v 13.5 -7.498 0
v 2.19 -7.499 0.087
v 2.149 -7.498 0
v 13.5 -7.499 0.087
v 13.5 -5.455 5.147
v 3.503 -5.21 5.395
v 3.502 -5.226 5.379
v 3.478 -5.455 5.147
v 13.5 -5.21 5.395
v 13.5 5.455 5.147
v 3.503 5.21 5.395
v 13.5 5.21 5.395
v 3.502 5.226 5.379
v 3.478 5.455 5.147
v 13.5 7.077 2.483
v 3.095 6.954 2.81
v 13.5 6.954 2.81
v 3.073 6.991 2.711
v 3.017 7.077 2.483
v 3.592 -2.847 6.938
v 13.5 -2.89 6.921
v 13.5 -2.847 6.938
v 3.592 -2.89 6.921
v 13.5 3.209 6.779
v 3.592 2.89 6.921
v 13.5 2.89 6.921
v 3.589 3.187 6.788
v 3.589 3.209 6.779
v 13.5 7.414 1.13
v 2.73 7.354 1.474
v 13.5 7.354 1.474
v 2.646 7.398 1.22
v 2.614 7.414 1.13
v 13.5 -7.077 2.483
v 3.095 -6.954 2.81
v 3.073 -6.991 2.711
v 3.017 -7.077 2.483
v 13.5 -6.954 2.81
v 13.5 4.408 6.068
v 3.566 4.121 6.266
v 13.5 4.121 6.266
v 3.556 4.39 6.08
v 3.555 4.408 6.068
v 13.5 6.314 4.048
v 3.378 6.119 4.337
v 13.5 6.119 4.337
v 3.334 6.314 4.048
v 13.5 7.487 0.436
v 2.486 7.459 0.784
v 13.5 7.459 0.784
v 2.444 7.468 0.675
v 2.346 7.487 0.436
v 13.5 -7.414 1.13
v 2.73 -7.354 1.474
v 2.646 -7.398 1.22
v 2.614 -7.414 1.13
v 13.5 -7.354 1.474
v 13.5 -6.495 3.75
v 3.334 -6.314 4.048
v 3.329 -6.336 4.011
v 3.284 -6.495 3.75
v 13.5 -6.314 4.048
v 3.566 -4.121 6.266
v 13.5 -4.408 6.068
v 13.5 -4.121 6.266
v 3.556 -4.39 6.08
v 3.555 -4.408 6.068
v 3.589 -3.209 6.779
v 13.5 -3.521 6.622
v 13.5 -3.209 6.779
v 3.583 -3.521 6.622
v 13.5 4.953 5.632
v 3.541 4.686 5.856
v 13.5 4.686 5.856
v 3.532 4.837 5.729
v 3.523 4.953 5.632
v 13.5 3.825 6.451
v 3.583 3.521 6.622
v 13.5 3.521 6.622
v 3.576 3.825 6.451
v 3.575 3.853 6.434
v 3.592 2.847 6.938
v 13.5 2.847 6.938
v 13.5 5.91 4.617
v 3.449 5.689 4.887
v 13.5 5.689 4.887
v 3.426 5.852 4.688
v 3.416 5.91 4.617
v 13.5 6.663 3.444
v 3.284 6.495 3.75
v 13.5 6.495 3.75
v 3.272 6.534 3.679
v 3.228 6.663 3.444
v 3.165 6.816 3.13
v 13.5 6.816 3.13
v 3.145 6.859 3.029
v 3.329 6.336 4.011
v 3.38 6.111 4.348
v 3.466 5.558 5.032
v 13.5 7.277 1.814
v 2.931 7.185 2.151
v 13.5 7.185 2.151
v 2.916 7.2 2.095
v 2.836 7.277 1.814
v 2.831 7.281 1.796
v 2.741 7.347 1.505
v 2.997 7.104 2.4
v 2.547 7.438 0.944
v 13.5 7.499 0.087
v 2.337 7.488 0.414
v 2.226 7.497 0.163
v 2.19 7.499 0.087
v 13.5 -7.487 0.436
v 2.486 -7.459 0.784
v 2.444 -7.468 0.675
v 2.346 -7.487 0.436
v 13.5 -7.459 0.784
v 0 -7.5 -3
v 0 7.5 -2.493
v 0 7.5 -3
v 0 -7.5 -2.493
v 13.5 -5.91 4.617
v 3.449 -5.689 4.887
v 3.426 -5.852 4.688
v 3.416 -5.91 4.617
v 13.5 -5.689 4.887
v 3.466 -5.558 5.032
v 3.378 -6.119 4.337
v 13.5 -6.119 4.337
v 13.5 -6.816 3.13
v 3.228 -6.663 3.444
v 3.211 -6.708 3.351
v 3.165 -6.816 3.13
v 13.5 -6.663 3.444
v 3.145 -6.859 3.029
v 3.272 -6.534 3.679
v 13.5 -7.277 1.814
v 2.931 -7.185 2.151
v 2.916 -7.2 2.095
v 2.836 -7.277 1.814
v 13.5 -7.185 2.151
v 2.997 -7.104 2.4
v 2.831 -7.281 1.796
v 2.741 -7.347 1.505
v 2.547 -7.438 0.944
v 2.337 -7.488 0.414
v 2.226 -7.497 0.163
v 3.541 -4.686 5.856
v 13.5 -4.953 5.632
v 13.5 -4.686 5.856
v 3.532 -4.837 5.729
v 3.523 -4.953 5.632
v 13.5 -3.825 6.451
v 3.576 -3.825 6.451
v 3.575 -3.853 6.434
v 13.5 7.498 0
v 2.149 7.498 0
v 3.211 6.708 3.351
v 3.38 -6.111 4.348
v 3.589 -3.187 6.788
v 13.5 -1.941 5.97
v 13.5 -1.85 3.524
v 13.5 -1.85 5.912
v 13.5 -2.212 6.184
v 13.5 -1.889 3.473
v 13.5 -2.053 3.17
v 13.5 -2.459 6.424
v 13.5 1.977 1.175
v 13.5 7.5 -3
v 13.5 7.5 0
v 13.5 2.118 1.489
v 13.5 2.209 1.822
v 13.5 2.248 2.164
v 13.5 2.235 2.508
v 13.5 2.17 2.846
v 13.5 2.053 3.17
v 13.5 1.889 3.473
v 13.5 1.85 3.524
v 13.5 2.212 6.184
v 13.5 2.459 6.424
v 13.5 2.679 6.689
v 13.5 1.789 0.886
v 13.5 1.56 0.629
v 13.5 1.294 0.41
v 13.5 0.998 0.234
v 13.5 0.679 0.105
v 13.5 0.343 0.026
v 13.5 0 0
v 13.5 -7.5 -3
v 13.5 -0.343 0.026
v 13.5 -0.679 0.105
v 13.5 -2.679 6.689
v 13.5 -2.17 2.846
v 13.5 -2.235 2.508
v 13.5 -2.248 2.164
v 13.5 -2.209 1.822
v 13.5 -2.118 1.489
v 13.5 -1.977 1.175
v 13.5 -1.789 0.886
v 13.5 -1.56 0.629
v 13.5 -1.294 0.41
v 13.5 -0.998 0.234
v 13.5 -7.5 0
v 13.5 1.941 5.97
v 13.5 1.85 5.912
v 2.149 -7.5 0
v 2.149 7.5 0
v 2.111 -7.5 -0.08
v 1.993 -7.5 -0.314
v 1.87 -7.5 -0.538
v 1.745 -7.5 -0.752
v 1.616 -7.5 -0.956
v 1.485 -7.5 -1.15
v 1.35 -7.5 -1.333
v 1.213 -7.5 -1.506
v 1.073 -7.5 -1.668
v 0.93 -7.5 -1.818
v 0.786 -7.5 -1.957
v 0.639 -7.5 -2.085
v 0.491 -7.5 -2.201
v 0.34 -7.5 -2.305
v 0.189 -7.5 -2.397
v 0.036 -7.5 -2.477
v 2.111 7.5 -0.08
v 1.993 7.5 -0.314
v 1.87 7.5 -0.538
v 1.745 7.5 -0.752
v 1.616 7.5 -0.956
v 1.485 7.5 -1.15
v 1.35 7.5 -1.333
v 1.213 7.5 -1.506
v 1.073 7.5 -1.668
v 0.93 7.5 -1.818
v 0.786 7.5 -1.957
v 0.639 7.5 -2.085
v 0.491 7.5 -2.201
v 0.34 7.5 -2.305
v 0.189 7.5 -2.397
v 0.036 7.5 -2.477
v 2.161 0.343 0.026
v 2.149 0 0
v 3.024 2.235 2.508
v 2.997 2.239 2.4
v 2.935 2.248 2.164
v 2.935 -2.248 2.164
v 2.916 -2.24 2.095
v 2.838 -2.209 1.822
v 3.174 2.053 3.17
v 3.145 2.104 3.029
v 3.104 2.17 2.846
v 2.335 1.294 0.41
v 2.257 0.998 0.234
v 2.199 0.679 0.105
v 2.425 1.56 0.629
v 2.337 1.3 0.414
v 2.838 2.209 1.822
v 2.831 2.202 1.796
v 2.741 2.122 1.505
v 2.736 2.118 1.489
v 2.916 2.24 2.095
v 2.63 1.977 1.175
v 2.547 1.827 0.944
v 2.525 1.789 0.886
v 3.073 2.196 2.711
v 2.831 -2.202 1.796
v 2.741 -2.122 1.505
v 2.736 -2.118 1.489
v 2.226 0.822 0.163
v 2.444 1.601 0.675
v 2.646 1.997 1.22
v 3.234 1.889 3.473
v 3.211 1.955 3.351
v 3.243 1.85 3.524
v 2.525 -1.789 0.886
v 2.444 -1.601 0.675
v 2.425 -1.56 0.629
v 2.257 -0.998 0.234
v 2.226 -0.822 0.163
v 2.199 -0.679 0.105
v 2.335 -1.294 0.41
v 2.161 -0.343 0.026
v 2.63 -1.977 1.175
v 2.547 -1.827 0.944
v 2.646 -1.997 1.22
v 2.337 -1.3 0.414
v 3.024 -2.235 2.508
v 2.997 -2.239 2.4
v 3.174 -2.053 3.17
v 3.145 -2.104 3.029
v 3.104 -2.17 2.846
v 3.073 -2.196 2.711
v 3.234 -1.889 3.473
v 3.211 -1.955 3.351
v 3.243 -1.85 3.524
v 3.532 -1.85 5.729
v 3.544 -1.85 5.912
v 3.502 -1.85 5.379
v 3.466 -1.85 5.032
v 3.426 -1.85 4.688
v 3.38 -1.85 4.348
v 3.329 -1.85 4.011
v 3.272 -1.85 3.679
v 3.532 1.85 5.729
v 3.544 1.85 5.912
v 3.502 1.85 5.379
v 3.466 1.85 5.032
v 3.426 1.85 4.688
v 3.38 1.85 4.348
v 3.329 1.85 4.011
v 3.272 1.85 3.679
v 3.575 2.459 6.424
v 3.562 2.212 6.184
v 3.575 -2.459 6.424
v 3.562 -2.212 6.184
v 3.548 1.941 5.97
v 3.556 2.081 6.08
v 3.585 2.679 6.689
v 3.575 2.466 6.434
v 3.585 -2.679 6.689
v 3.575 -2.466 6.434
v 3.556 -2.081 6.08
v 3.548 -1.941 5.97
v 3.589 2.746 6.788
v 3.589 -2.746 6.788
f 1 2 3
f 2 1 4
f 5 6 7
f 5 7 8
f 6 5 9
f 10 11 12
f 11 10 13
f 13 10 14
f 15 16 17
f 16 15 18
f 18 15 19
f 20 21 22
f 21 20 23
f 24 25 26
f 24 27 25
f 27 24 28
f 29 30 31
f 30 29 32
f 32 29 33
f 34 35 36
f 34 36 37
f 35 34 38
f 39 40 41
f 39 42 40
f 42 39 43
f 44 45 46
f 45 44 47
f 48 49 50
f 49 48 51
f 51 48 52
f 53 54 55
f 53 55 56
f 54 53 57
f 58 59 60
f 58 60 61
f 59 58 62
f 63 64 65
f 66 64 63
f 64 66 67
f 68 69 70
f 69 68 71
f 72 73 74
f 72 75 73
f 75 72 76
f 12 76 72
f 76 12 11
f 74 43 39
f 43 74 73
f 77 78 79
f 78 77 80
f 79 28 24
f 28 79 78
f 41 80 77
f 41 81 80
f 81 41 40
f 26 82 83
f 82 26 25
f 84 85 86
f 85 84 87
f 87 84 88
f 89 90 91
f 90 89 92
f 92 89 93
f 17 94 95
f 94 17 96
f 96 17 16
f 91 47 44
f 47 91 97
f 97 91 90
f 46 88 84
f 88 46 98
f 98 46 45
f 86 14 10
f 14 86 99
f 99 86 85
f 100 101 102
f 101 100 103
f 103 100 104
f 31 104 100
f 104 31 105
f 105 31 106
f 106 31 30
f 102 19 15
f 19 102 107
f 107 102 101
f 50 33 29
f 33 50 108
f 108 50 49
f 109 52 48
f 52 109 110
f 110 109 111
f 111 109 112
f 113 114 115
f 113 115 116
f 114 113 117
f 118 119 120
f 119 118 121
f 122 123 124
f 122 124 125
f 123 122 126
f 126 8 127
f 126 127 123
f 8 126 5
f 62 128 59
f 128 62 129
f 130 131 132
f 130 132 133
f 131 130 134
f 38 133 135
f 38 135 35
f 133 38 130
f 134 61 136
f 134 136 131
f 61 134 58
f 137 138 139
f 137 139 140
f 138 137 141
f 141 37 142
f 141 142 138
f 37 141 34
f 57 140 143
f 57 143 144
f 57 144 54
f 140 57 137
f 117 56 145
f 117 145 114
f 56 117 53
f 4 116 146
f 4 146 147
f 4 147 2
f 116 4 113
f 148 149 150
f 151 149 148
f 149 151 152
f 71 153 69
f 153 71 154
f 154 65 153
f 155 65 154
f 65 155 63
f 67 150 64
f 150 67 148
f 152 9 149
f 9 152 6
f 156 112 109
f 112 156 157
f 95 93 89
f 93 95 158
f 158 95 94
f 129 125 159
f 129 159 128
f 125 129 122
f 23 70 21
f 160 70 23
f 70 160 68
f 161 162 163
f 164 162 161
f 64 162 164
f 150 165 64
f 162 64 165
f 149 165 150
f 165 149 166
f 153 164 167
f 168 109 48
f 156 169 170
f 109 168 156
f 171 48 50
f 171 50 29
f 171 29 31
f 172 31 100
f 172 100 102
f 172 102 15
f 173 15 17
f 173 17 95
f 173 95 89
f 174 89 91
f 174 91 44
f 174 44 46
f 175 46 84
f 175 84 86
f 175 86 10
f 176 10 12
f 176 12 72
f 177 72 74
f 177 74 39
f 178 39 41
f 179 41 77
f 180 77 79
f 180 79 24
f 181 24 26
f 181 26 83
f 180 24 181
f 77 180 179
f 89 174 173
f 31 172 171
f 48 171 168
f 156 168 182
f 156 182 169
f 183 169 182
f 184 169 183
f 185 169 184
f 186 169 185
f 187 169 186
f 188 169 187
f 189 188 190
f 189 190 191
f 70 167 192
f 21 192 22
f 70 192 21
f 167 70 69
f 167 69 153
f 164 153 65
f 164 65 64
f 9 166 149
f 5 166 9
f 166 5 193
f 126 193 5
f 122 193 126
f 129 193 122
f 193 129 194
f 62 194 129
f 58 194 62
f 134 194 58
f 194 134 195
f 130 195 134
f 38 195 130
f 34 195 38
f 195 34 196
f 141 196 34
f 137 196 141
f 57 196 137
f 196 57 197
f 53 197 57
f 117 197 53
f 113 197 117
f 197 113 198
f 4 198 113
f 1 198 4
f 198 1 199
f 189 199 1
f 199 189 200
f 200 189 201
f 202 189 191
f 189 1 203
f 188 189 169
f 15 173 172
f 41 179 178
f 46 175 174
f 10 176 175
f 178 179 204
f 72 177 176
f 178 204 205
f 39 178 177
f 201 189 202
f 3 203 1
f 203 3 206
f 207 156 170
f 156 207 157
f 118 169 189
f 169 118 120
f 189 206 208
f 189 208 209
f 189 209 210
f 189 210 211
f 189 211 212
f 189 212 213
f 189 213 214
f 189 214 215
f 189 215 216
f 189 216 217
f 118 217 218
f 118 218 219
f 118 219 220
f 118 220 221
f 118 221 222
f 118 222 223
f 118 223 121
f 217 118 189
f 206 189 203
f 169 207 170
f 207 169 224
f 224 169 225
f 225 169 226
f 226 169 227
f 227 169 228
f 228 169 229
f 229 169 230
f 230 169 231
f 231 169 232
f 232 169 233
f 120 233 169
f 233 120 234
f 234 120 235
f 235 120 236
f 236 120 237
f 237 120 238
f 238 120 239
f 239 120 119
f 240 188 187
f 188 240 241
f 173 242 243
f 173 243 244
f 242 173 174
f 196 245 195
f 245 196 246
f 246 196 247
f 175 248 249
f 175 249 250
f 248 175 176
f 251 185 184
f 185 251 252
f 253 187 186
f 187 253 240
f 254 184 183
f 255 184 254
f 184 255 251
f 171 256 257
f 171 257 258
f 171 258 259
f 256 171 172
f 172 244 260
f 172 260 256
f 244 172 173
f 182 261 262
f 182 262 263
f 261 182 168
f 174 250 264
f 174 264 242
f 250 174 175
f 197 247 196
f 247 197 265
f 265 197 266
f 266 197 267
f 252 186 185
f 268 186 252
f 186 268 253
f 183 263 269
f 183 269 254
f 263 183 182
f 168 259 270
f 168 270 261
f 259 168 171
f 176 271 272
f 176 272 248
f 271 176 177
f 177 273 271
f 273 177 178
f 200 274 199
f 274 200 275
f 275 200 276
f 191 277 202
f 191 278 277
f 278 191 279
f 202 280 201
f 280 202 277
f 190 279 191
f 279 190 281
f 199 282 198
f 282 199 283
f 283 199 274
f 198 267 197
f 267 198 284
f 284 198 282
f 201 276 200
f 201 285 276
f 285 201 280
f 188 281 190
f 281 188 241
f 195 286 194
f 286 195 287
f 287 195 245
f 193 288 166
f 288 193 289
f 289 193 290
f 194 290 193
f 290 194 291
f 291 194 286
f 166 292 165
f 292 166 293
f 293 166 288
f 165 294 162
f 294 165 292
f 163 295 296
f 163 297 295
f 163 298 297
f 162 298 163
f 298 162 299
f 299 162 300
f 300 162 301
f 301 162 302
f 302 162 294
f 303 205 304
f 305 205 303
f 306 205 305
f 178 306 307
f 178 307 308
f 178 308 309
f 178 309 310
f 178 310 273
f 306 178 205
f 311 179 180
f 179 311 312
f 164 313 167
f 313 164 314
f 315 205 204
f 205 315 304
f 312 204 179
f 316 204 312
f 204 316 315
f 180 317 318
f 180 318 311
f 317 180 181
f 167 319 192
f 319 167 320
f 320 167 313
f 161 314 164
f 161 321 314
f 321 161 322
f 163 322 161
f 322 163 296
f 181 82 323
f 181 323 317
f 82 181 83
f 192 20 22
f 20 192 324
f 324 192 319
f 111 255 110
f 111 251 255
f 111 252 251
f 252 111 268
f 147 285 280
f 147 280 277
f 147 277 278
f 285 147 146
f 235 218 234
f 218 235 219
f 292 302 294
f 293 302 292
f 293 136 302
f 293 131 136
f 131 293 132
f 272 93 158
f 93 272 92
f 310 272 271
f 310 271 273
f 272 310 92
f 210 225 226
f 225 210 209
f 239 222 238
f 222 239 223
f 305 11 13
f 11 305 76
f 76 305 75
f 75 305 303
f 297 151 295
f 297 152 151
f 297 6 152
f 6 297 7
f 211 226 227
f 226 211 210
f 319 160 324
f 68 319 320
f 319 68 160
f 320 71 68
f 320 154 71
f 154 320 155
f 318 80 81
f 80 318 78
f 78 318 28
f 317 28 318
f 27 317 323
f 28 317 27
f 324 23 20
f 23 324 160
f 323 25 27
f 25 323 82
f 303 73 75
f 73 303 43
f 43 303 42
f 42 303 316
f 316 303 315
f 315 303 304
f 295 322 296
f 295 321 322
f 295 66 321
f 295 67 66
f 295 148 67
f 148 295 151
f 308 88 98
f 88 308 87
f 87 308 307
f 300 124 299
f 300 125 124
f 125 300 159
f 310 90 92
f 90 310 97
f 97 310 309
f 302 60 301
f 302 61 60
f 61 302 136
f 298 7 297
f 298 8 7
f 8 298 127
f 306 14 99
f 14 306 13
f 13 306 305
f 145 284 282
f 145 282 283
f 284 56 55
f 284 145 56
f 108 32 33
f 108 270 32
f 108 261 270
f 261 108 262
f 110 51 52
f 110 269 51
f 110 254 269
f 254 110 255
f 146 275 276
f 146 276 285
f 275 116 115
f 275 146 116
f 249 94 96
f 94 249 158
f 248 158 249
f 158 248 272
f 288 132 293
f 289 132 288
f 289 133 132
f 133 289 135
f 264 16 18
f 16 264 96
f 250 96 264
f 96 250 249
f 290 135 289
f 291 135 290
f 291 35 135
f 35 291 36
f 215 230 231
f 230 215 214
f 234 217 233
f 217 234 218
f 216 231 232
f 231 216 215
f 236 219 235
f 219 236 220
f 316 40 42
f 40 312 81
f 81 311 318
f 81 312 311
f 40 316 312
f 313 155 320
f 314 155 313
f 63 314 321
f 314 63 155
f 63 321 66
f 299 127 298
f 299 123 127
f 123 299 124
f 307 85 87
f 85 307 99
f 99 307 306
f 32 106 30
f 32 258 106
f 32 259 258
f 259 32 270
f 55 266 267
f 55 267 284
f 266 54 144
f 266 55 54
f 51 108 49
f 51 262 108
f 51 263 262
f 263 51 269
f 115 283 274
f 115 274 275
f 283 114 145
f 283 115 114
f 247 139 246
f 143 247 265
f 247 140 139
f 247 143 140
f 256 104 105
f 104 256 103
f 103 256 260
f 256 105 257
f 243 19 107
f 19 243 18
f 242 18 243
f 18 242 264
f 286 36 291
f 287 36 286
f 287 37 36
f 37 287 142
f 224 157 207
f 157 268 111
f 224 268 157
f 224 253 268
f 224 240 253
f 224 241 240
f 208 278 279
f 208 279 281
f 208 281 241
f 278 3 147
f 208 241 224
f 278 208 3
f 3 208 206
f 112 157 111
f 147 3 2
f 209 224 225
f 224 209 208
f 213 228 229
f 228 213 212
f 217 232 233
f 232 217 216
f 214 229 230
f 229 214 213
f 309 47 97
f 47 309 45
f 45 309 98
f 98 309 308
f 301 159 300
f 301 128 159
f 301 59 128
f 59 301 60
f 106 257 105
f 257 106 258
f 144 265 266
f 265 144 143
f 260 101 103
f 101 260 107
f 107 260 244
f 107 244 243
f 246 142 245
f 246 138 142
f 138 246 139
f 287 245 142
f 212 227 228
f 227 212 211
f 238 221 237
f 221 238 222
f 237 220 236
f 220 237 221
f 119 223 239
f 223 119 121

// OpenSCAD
// it would be nice to bevel the deges, but we'll rely
// on build direction and skeinforge to do that for us
$fs=0.35;
$fa=1;

tol = 0.01;

basew = 25/2+1;  // wide enough for 1/2" double sided sticky tape with some slop

// ethernet
//hole = 9;
//gap = 6;

// power cable or video?
// hole = 12;
// gap = 7;

// temperature sensor
hole = 4.5;
gap = 3.7;

wall = 3;
basel = (hole + wall)*2;

sidecurveoff = wall*0.3;
sidecurvez = wall*0.9;
sidecurveh = basel/2+sidecurvez;
sidecurvew = basew/3;

difference() {
 union(){
  // base
  translate([0 , -basel/2, -wall])  cube([ basew, basel, wall ]);
  // body
  intersection() {
    rotate([0,90,0])
       cylinder(h=basew+tol*2, r=basel/2);
    translate([0,-basel/2, 0])
      cube([ basew, basel, basel/2]);
  }
 }
  // hole
  translate([-tol, 0, hole/2])
     rotate([0,90,0])
        cylinder(h=basew+tol*2, r=hole/2);
  // gap
  translate([-tol , -gap/2, hole/2-tol]) 
    cube([tol*2+basew, gap, tol*2+wall+hole/2]);
  // take a nick out of the top of the gap
  translate([-tol, 0, wall*1.4+hole])
    rotate([0,90,0])
       cylinder(h=basew+tol*2, r=gap/2+wall/2);
  // take some material off of the sides too
  translate([0,-basel/2-tol,sidecurveh-sidecurvez]) rotate([0,90,90]){   
    translate([0,sidecurveoff,0])
     scale([sidecurveh/10,sidecurvew/10,1])cylinder(h=basel+tol*2,r=10);
//    translate([0,-basew-sidecurveoff,0])
//      scale([sidecurveh/10,sidecurvew/10,1])cylinder(h=basel+tol*2, r=10);

  }
}
